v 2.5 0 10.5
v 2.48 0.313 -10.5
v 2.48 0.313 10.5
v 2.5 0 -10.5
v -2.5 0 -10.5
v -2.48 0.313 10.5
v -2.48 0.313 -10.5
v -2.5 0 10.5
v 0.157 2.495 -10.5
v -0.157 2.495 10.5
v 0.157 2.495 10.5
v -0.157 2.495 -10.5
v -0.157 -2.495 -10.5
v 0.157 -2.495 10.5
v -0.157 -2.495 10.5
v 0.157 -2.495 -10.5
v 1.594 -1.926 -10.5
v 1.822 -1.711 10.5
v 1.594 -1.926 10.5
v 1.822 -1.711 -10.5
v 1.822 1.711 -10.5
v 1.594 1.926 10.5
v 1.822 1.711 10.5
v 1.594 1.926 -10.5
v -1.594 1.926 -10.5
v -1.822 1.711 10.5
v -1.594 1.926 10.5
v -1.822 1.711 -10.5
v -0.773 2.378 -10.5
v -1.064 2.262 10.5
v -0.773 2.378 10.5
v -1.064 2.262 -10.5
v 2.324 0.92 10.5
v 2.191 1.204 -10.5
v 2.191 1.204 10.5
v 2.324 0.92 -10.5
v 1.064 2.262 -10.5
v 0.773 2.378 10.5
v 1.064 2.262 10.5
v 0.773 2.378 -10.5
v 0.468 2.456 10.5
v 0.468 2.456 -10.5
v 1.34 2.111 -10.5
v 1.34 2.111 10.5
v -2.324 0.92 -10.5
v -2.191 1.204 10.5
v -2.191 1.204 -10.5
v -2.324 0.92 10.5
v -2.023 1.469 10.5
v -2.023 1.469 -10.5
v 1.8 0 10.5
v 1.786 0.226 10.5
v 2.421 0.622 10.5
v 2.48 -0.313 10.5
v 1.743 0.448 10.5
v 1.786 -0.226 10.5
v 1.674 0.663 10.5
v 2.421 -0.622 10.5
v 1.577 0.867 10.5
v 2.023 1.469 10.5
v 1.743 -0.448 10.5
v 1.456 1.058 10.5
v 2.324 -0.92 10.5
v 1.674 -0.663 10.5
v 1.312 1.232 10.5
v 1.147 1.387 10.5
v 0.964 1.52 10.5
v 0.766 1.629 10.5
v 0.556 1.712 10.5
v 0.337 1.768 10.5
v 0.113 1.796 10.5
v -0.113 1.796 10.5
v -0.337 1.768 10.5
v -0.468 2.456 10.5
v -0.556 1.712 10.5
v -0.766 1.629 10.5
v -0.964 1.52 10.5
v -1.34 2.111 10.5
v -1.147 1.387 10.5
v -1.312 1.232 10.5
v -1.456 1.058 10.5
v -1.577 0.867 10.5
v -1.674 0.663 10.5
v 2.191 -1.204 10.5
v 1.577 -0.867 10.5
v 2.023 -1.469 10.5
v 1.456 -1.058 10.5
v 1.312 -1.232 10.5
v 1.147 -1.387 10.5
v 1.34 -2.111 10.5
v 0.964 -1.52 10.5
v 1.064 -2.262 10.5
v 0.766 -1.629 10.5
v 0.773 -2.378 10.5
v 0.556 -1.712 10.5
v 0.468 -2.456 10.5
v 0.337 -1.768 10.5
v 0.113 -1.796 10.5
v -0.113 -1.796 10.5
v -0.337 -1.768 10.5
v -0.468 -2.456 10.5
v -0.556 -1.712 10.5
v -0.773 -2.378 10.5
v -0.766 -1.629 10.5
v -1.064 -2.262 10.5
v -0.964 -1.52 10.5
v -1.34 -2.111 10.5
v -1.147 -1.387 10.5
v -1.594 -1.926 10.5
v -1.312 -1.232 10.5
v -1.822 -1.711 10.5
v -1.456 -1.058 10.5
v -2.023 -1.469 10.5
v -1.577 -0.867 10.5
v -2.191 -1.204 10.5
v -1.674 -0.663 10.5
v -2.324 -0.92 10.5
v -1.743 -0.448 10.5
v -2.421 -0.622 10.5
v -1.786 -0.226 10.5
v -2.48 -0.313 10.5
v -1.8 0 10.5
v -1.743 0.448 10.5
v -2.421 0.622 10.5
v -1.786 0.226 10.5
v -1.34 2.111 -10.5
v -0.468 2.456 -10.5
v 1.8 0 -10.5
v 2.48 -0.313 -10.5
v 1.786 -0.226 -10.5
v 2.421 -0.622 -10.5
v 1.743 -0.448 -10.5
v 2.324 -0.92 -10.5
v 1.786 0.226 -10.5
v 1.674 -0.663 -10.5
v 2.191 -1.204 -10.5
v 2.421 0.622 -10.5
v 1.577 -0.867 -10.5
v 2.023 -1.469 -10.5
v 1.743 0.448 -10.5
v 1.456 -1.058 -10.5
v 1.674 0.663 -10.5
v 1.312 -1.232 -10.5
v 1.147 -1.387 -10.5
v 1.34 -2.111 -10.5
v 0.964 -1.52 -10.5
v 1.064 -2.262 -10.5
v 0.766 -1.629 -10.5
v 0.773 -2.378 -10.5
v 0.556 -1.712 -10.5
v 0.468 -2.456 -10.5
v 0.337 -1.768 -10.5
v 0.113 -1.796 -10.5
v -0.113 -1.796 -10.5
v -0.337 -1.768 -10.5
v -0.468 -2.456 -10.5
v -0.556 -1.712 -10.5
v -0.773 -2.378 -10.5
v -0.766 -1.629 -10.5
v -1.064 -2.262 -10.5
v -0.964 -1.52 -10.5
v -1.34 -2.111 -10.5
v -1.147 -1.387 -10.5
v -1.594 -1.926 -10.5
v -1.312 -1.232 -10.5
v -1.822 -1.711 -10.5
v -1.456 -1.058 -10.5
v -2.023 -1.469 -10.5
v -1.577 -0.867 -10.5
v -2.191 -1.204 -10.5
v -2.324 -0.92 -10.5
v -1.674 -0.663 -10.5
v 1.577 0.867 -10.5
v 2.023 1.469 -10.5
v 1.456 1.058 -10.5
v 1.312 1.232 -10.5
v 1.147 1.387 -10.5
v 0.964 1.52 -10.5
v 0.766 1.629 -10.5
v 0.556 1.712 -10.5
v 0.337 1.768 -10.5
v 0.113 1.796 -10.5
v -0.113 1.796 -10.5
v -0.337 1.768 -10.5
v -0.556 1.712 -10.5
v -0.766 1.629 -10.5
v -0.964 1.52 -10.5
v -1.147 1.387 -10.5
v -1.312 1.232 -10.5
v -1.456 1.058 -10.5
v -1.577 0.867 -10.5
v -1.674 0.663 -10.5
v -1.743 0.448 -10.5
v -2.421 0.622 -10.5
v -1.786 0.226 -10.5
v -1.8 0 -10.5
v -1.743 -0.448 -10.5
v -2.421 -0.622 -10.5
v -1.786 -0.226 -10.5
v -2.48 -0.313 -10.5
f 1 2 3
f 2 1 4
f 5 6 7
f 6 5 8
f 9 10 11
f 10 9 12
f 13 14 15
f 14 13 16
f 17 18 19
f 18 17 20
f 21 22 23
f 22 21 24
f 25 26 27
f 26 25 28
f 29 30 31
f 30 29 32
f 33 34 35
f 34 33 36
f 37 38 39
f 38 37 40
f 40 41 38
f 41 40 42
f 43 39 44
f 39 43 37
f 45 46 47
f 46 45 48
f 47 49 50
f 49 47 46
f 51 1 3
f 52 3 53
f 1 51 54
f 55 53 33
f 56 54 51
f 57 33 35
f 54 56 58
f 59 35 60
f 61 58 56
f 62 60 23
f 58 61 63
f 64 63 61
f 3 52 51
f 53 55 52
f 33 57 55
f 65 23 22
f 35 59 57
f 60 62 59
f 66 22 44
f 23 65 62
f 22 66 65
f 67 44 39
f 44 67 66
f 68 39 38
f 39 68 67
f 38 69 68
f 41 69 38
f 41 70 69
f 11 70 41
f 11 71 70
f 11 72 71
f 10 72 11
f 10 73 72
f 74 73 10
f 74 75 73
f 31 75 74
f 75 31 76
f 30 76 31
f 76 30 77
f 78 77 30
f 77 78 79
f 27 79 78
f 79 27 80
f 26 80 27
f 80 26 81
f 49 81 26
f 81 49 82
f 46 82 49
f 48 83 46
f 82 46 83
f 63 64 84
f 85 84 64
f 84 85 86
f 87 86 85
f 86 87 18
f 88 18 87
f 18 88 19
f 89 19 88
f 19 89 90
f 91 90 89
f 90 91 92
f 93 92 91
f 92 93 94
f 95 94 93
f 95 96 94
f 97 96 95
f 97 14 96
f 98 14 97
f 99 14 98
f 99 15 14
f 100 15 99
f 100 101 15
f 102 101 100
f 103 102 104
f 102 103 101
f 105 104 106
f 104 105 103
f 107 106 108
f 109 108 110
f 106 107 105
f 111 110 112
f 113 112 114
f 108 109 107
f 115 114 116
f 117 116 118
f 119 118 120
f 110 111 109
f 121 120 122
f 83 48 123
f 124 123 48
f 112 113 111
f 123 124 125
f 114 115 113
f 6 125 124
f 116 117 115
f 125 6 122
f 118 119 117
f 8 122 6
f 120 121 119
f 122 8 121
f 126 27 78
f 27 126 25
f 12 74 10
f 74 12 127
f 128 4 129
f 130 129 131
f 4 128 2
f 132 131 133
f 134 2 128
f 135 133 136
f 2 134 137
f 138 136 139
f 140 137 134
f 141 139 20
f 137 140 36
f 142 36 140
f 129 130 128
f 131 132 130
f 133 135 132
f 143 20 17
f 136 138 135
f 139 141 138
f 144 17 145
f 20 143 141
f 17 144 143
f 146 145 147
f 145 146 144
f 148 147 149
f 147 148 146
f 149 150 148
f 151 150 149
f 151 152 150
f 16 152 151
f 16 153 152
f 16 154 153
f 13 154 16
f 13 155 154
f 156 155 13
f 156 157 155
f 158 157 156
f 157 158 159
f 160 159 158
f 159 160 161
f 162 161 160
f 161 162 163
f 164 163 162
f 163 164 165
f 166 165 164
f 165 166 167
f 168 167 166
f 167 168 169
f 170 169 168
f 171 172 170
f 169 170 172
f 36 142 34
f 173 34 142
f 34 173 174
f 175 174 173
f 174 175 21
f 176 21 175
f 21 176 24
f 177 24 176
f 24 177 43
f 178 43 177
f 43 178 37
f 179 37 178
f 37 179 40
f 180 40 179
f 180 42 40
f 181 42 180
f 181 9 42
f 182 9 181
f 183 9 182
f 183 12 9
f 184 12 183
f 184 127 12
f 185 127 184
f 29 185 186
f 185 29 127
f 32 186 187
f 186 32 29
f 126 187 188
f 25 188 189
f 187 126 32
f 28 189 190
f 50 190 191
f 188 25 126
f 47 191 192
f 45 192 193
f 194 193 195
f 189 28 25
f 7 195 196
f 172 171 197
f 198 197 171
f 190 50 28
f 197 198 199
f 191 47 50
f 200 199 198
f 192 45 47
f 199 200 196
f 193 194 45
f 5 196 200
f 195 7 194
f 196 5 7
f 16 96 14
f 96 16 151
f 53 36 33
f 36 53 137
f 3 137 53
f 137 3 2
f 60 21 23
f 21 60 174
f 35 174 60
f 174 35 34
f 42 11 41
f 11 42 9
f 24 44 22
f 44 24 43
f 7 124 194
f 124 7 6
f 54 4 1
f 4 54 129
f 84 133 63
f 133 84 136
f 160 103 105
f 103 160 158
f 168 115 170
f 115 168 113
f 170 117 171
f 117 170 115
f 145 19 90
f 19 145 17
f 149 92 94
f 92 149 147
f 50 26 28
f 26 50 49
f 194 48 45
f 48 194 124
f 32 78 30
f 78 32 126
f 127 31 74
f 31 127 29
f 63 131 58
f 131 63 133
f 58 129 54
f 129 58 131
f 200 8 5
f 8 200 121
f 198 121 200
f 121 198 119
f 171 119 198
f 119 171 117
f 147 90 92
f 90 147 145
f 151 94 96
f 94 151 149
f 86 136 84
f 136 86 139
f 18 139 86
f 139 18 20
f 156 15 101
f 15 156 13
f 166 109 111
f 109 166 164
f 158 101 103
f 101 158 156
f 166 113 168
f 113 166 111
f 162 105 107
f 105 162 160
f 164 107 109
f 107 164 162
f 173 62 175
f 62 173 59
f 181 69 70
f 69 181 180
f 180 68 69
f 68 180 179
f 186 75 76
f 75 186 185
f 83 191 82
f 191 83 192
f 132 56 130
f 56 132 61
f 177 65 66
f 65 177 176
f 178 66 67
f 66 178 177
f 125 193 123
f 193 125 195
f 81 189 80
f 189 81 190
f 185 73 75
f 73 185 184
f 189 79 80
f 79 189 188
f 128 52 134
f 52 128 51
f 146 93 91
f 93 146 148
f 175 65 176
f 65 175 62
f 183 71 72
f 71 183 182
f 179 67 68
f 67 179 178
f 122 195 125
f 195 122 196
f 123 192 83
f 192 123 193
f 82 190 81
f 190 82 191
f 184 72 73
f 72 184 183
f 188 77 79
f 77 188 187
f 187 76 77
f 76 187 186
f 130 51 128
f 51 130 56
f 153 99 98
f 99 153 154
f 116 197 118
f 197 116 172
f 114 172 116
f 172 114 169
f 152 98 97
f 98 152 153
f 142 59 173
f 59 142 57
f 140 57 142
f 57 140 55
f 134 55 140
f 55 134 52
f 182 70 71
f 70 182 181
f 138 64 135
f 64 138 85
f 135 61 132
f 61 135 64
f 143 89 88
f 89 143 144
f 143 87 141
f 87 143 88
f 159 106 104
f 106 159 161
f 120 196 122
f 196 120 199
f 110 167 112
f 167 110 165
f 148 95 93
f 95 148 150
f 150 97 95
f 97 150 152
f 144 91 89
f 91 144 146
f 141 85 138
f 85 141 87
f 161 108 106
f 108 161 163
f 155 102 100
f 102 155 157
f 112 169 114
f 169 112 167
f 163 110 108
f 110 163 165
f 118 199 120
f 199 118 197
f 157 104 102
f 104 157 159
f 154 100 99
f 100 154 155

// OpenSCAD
$fn = 50;


difference() {
	union() {
		translate(v = [0, 0, -10.5000000000]) {
			cylinder(h = 21, r = 2.5000000000);
		}
	}
	union() {
		translate(v = [0, 0, -100.0000000000]) {
			cylinder(h = 200, r = 1.8000000000);
		}
	}
}
